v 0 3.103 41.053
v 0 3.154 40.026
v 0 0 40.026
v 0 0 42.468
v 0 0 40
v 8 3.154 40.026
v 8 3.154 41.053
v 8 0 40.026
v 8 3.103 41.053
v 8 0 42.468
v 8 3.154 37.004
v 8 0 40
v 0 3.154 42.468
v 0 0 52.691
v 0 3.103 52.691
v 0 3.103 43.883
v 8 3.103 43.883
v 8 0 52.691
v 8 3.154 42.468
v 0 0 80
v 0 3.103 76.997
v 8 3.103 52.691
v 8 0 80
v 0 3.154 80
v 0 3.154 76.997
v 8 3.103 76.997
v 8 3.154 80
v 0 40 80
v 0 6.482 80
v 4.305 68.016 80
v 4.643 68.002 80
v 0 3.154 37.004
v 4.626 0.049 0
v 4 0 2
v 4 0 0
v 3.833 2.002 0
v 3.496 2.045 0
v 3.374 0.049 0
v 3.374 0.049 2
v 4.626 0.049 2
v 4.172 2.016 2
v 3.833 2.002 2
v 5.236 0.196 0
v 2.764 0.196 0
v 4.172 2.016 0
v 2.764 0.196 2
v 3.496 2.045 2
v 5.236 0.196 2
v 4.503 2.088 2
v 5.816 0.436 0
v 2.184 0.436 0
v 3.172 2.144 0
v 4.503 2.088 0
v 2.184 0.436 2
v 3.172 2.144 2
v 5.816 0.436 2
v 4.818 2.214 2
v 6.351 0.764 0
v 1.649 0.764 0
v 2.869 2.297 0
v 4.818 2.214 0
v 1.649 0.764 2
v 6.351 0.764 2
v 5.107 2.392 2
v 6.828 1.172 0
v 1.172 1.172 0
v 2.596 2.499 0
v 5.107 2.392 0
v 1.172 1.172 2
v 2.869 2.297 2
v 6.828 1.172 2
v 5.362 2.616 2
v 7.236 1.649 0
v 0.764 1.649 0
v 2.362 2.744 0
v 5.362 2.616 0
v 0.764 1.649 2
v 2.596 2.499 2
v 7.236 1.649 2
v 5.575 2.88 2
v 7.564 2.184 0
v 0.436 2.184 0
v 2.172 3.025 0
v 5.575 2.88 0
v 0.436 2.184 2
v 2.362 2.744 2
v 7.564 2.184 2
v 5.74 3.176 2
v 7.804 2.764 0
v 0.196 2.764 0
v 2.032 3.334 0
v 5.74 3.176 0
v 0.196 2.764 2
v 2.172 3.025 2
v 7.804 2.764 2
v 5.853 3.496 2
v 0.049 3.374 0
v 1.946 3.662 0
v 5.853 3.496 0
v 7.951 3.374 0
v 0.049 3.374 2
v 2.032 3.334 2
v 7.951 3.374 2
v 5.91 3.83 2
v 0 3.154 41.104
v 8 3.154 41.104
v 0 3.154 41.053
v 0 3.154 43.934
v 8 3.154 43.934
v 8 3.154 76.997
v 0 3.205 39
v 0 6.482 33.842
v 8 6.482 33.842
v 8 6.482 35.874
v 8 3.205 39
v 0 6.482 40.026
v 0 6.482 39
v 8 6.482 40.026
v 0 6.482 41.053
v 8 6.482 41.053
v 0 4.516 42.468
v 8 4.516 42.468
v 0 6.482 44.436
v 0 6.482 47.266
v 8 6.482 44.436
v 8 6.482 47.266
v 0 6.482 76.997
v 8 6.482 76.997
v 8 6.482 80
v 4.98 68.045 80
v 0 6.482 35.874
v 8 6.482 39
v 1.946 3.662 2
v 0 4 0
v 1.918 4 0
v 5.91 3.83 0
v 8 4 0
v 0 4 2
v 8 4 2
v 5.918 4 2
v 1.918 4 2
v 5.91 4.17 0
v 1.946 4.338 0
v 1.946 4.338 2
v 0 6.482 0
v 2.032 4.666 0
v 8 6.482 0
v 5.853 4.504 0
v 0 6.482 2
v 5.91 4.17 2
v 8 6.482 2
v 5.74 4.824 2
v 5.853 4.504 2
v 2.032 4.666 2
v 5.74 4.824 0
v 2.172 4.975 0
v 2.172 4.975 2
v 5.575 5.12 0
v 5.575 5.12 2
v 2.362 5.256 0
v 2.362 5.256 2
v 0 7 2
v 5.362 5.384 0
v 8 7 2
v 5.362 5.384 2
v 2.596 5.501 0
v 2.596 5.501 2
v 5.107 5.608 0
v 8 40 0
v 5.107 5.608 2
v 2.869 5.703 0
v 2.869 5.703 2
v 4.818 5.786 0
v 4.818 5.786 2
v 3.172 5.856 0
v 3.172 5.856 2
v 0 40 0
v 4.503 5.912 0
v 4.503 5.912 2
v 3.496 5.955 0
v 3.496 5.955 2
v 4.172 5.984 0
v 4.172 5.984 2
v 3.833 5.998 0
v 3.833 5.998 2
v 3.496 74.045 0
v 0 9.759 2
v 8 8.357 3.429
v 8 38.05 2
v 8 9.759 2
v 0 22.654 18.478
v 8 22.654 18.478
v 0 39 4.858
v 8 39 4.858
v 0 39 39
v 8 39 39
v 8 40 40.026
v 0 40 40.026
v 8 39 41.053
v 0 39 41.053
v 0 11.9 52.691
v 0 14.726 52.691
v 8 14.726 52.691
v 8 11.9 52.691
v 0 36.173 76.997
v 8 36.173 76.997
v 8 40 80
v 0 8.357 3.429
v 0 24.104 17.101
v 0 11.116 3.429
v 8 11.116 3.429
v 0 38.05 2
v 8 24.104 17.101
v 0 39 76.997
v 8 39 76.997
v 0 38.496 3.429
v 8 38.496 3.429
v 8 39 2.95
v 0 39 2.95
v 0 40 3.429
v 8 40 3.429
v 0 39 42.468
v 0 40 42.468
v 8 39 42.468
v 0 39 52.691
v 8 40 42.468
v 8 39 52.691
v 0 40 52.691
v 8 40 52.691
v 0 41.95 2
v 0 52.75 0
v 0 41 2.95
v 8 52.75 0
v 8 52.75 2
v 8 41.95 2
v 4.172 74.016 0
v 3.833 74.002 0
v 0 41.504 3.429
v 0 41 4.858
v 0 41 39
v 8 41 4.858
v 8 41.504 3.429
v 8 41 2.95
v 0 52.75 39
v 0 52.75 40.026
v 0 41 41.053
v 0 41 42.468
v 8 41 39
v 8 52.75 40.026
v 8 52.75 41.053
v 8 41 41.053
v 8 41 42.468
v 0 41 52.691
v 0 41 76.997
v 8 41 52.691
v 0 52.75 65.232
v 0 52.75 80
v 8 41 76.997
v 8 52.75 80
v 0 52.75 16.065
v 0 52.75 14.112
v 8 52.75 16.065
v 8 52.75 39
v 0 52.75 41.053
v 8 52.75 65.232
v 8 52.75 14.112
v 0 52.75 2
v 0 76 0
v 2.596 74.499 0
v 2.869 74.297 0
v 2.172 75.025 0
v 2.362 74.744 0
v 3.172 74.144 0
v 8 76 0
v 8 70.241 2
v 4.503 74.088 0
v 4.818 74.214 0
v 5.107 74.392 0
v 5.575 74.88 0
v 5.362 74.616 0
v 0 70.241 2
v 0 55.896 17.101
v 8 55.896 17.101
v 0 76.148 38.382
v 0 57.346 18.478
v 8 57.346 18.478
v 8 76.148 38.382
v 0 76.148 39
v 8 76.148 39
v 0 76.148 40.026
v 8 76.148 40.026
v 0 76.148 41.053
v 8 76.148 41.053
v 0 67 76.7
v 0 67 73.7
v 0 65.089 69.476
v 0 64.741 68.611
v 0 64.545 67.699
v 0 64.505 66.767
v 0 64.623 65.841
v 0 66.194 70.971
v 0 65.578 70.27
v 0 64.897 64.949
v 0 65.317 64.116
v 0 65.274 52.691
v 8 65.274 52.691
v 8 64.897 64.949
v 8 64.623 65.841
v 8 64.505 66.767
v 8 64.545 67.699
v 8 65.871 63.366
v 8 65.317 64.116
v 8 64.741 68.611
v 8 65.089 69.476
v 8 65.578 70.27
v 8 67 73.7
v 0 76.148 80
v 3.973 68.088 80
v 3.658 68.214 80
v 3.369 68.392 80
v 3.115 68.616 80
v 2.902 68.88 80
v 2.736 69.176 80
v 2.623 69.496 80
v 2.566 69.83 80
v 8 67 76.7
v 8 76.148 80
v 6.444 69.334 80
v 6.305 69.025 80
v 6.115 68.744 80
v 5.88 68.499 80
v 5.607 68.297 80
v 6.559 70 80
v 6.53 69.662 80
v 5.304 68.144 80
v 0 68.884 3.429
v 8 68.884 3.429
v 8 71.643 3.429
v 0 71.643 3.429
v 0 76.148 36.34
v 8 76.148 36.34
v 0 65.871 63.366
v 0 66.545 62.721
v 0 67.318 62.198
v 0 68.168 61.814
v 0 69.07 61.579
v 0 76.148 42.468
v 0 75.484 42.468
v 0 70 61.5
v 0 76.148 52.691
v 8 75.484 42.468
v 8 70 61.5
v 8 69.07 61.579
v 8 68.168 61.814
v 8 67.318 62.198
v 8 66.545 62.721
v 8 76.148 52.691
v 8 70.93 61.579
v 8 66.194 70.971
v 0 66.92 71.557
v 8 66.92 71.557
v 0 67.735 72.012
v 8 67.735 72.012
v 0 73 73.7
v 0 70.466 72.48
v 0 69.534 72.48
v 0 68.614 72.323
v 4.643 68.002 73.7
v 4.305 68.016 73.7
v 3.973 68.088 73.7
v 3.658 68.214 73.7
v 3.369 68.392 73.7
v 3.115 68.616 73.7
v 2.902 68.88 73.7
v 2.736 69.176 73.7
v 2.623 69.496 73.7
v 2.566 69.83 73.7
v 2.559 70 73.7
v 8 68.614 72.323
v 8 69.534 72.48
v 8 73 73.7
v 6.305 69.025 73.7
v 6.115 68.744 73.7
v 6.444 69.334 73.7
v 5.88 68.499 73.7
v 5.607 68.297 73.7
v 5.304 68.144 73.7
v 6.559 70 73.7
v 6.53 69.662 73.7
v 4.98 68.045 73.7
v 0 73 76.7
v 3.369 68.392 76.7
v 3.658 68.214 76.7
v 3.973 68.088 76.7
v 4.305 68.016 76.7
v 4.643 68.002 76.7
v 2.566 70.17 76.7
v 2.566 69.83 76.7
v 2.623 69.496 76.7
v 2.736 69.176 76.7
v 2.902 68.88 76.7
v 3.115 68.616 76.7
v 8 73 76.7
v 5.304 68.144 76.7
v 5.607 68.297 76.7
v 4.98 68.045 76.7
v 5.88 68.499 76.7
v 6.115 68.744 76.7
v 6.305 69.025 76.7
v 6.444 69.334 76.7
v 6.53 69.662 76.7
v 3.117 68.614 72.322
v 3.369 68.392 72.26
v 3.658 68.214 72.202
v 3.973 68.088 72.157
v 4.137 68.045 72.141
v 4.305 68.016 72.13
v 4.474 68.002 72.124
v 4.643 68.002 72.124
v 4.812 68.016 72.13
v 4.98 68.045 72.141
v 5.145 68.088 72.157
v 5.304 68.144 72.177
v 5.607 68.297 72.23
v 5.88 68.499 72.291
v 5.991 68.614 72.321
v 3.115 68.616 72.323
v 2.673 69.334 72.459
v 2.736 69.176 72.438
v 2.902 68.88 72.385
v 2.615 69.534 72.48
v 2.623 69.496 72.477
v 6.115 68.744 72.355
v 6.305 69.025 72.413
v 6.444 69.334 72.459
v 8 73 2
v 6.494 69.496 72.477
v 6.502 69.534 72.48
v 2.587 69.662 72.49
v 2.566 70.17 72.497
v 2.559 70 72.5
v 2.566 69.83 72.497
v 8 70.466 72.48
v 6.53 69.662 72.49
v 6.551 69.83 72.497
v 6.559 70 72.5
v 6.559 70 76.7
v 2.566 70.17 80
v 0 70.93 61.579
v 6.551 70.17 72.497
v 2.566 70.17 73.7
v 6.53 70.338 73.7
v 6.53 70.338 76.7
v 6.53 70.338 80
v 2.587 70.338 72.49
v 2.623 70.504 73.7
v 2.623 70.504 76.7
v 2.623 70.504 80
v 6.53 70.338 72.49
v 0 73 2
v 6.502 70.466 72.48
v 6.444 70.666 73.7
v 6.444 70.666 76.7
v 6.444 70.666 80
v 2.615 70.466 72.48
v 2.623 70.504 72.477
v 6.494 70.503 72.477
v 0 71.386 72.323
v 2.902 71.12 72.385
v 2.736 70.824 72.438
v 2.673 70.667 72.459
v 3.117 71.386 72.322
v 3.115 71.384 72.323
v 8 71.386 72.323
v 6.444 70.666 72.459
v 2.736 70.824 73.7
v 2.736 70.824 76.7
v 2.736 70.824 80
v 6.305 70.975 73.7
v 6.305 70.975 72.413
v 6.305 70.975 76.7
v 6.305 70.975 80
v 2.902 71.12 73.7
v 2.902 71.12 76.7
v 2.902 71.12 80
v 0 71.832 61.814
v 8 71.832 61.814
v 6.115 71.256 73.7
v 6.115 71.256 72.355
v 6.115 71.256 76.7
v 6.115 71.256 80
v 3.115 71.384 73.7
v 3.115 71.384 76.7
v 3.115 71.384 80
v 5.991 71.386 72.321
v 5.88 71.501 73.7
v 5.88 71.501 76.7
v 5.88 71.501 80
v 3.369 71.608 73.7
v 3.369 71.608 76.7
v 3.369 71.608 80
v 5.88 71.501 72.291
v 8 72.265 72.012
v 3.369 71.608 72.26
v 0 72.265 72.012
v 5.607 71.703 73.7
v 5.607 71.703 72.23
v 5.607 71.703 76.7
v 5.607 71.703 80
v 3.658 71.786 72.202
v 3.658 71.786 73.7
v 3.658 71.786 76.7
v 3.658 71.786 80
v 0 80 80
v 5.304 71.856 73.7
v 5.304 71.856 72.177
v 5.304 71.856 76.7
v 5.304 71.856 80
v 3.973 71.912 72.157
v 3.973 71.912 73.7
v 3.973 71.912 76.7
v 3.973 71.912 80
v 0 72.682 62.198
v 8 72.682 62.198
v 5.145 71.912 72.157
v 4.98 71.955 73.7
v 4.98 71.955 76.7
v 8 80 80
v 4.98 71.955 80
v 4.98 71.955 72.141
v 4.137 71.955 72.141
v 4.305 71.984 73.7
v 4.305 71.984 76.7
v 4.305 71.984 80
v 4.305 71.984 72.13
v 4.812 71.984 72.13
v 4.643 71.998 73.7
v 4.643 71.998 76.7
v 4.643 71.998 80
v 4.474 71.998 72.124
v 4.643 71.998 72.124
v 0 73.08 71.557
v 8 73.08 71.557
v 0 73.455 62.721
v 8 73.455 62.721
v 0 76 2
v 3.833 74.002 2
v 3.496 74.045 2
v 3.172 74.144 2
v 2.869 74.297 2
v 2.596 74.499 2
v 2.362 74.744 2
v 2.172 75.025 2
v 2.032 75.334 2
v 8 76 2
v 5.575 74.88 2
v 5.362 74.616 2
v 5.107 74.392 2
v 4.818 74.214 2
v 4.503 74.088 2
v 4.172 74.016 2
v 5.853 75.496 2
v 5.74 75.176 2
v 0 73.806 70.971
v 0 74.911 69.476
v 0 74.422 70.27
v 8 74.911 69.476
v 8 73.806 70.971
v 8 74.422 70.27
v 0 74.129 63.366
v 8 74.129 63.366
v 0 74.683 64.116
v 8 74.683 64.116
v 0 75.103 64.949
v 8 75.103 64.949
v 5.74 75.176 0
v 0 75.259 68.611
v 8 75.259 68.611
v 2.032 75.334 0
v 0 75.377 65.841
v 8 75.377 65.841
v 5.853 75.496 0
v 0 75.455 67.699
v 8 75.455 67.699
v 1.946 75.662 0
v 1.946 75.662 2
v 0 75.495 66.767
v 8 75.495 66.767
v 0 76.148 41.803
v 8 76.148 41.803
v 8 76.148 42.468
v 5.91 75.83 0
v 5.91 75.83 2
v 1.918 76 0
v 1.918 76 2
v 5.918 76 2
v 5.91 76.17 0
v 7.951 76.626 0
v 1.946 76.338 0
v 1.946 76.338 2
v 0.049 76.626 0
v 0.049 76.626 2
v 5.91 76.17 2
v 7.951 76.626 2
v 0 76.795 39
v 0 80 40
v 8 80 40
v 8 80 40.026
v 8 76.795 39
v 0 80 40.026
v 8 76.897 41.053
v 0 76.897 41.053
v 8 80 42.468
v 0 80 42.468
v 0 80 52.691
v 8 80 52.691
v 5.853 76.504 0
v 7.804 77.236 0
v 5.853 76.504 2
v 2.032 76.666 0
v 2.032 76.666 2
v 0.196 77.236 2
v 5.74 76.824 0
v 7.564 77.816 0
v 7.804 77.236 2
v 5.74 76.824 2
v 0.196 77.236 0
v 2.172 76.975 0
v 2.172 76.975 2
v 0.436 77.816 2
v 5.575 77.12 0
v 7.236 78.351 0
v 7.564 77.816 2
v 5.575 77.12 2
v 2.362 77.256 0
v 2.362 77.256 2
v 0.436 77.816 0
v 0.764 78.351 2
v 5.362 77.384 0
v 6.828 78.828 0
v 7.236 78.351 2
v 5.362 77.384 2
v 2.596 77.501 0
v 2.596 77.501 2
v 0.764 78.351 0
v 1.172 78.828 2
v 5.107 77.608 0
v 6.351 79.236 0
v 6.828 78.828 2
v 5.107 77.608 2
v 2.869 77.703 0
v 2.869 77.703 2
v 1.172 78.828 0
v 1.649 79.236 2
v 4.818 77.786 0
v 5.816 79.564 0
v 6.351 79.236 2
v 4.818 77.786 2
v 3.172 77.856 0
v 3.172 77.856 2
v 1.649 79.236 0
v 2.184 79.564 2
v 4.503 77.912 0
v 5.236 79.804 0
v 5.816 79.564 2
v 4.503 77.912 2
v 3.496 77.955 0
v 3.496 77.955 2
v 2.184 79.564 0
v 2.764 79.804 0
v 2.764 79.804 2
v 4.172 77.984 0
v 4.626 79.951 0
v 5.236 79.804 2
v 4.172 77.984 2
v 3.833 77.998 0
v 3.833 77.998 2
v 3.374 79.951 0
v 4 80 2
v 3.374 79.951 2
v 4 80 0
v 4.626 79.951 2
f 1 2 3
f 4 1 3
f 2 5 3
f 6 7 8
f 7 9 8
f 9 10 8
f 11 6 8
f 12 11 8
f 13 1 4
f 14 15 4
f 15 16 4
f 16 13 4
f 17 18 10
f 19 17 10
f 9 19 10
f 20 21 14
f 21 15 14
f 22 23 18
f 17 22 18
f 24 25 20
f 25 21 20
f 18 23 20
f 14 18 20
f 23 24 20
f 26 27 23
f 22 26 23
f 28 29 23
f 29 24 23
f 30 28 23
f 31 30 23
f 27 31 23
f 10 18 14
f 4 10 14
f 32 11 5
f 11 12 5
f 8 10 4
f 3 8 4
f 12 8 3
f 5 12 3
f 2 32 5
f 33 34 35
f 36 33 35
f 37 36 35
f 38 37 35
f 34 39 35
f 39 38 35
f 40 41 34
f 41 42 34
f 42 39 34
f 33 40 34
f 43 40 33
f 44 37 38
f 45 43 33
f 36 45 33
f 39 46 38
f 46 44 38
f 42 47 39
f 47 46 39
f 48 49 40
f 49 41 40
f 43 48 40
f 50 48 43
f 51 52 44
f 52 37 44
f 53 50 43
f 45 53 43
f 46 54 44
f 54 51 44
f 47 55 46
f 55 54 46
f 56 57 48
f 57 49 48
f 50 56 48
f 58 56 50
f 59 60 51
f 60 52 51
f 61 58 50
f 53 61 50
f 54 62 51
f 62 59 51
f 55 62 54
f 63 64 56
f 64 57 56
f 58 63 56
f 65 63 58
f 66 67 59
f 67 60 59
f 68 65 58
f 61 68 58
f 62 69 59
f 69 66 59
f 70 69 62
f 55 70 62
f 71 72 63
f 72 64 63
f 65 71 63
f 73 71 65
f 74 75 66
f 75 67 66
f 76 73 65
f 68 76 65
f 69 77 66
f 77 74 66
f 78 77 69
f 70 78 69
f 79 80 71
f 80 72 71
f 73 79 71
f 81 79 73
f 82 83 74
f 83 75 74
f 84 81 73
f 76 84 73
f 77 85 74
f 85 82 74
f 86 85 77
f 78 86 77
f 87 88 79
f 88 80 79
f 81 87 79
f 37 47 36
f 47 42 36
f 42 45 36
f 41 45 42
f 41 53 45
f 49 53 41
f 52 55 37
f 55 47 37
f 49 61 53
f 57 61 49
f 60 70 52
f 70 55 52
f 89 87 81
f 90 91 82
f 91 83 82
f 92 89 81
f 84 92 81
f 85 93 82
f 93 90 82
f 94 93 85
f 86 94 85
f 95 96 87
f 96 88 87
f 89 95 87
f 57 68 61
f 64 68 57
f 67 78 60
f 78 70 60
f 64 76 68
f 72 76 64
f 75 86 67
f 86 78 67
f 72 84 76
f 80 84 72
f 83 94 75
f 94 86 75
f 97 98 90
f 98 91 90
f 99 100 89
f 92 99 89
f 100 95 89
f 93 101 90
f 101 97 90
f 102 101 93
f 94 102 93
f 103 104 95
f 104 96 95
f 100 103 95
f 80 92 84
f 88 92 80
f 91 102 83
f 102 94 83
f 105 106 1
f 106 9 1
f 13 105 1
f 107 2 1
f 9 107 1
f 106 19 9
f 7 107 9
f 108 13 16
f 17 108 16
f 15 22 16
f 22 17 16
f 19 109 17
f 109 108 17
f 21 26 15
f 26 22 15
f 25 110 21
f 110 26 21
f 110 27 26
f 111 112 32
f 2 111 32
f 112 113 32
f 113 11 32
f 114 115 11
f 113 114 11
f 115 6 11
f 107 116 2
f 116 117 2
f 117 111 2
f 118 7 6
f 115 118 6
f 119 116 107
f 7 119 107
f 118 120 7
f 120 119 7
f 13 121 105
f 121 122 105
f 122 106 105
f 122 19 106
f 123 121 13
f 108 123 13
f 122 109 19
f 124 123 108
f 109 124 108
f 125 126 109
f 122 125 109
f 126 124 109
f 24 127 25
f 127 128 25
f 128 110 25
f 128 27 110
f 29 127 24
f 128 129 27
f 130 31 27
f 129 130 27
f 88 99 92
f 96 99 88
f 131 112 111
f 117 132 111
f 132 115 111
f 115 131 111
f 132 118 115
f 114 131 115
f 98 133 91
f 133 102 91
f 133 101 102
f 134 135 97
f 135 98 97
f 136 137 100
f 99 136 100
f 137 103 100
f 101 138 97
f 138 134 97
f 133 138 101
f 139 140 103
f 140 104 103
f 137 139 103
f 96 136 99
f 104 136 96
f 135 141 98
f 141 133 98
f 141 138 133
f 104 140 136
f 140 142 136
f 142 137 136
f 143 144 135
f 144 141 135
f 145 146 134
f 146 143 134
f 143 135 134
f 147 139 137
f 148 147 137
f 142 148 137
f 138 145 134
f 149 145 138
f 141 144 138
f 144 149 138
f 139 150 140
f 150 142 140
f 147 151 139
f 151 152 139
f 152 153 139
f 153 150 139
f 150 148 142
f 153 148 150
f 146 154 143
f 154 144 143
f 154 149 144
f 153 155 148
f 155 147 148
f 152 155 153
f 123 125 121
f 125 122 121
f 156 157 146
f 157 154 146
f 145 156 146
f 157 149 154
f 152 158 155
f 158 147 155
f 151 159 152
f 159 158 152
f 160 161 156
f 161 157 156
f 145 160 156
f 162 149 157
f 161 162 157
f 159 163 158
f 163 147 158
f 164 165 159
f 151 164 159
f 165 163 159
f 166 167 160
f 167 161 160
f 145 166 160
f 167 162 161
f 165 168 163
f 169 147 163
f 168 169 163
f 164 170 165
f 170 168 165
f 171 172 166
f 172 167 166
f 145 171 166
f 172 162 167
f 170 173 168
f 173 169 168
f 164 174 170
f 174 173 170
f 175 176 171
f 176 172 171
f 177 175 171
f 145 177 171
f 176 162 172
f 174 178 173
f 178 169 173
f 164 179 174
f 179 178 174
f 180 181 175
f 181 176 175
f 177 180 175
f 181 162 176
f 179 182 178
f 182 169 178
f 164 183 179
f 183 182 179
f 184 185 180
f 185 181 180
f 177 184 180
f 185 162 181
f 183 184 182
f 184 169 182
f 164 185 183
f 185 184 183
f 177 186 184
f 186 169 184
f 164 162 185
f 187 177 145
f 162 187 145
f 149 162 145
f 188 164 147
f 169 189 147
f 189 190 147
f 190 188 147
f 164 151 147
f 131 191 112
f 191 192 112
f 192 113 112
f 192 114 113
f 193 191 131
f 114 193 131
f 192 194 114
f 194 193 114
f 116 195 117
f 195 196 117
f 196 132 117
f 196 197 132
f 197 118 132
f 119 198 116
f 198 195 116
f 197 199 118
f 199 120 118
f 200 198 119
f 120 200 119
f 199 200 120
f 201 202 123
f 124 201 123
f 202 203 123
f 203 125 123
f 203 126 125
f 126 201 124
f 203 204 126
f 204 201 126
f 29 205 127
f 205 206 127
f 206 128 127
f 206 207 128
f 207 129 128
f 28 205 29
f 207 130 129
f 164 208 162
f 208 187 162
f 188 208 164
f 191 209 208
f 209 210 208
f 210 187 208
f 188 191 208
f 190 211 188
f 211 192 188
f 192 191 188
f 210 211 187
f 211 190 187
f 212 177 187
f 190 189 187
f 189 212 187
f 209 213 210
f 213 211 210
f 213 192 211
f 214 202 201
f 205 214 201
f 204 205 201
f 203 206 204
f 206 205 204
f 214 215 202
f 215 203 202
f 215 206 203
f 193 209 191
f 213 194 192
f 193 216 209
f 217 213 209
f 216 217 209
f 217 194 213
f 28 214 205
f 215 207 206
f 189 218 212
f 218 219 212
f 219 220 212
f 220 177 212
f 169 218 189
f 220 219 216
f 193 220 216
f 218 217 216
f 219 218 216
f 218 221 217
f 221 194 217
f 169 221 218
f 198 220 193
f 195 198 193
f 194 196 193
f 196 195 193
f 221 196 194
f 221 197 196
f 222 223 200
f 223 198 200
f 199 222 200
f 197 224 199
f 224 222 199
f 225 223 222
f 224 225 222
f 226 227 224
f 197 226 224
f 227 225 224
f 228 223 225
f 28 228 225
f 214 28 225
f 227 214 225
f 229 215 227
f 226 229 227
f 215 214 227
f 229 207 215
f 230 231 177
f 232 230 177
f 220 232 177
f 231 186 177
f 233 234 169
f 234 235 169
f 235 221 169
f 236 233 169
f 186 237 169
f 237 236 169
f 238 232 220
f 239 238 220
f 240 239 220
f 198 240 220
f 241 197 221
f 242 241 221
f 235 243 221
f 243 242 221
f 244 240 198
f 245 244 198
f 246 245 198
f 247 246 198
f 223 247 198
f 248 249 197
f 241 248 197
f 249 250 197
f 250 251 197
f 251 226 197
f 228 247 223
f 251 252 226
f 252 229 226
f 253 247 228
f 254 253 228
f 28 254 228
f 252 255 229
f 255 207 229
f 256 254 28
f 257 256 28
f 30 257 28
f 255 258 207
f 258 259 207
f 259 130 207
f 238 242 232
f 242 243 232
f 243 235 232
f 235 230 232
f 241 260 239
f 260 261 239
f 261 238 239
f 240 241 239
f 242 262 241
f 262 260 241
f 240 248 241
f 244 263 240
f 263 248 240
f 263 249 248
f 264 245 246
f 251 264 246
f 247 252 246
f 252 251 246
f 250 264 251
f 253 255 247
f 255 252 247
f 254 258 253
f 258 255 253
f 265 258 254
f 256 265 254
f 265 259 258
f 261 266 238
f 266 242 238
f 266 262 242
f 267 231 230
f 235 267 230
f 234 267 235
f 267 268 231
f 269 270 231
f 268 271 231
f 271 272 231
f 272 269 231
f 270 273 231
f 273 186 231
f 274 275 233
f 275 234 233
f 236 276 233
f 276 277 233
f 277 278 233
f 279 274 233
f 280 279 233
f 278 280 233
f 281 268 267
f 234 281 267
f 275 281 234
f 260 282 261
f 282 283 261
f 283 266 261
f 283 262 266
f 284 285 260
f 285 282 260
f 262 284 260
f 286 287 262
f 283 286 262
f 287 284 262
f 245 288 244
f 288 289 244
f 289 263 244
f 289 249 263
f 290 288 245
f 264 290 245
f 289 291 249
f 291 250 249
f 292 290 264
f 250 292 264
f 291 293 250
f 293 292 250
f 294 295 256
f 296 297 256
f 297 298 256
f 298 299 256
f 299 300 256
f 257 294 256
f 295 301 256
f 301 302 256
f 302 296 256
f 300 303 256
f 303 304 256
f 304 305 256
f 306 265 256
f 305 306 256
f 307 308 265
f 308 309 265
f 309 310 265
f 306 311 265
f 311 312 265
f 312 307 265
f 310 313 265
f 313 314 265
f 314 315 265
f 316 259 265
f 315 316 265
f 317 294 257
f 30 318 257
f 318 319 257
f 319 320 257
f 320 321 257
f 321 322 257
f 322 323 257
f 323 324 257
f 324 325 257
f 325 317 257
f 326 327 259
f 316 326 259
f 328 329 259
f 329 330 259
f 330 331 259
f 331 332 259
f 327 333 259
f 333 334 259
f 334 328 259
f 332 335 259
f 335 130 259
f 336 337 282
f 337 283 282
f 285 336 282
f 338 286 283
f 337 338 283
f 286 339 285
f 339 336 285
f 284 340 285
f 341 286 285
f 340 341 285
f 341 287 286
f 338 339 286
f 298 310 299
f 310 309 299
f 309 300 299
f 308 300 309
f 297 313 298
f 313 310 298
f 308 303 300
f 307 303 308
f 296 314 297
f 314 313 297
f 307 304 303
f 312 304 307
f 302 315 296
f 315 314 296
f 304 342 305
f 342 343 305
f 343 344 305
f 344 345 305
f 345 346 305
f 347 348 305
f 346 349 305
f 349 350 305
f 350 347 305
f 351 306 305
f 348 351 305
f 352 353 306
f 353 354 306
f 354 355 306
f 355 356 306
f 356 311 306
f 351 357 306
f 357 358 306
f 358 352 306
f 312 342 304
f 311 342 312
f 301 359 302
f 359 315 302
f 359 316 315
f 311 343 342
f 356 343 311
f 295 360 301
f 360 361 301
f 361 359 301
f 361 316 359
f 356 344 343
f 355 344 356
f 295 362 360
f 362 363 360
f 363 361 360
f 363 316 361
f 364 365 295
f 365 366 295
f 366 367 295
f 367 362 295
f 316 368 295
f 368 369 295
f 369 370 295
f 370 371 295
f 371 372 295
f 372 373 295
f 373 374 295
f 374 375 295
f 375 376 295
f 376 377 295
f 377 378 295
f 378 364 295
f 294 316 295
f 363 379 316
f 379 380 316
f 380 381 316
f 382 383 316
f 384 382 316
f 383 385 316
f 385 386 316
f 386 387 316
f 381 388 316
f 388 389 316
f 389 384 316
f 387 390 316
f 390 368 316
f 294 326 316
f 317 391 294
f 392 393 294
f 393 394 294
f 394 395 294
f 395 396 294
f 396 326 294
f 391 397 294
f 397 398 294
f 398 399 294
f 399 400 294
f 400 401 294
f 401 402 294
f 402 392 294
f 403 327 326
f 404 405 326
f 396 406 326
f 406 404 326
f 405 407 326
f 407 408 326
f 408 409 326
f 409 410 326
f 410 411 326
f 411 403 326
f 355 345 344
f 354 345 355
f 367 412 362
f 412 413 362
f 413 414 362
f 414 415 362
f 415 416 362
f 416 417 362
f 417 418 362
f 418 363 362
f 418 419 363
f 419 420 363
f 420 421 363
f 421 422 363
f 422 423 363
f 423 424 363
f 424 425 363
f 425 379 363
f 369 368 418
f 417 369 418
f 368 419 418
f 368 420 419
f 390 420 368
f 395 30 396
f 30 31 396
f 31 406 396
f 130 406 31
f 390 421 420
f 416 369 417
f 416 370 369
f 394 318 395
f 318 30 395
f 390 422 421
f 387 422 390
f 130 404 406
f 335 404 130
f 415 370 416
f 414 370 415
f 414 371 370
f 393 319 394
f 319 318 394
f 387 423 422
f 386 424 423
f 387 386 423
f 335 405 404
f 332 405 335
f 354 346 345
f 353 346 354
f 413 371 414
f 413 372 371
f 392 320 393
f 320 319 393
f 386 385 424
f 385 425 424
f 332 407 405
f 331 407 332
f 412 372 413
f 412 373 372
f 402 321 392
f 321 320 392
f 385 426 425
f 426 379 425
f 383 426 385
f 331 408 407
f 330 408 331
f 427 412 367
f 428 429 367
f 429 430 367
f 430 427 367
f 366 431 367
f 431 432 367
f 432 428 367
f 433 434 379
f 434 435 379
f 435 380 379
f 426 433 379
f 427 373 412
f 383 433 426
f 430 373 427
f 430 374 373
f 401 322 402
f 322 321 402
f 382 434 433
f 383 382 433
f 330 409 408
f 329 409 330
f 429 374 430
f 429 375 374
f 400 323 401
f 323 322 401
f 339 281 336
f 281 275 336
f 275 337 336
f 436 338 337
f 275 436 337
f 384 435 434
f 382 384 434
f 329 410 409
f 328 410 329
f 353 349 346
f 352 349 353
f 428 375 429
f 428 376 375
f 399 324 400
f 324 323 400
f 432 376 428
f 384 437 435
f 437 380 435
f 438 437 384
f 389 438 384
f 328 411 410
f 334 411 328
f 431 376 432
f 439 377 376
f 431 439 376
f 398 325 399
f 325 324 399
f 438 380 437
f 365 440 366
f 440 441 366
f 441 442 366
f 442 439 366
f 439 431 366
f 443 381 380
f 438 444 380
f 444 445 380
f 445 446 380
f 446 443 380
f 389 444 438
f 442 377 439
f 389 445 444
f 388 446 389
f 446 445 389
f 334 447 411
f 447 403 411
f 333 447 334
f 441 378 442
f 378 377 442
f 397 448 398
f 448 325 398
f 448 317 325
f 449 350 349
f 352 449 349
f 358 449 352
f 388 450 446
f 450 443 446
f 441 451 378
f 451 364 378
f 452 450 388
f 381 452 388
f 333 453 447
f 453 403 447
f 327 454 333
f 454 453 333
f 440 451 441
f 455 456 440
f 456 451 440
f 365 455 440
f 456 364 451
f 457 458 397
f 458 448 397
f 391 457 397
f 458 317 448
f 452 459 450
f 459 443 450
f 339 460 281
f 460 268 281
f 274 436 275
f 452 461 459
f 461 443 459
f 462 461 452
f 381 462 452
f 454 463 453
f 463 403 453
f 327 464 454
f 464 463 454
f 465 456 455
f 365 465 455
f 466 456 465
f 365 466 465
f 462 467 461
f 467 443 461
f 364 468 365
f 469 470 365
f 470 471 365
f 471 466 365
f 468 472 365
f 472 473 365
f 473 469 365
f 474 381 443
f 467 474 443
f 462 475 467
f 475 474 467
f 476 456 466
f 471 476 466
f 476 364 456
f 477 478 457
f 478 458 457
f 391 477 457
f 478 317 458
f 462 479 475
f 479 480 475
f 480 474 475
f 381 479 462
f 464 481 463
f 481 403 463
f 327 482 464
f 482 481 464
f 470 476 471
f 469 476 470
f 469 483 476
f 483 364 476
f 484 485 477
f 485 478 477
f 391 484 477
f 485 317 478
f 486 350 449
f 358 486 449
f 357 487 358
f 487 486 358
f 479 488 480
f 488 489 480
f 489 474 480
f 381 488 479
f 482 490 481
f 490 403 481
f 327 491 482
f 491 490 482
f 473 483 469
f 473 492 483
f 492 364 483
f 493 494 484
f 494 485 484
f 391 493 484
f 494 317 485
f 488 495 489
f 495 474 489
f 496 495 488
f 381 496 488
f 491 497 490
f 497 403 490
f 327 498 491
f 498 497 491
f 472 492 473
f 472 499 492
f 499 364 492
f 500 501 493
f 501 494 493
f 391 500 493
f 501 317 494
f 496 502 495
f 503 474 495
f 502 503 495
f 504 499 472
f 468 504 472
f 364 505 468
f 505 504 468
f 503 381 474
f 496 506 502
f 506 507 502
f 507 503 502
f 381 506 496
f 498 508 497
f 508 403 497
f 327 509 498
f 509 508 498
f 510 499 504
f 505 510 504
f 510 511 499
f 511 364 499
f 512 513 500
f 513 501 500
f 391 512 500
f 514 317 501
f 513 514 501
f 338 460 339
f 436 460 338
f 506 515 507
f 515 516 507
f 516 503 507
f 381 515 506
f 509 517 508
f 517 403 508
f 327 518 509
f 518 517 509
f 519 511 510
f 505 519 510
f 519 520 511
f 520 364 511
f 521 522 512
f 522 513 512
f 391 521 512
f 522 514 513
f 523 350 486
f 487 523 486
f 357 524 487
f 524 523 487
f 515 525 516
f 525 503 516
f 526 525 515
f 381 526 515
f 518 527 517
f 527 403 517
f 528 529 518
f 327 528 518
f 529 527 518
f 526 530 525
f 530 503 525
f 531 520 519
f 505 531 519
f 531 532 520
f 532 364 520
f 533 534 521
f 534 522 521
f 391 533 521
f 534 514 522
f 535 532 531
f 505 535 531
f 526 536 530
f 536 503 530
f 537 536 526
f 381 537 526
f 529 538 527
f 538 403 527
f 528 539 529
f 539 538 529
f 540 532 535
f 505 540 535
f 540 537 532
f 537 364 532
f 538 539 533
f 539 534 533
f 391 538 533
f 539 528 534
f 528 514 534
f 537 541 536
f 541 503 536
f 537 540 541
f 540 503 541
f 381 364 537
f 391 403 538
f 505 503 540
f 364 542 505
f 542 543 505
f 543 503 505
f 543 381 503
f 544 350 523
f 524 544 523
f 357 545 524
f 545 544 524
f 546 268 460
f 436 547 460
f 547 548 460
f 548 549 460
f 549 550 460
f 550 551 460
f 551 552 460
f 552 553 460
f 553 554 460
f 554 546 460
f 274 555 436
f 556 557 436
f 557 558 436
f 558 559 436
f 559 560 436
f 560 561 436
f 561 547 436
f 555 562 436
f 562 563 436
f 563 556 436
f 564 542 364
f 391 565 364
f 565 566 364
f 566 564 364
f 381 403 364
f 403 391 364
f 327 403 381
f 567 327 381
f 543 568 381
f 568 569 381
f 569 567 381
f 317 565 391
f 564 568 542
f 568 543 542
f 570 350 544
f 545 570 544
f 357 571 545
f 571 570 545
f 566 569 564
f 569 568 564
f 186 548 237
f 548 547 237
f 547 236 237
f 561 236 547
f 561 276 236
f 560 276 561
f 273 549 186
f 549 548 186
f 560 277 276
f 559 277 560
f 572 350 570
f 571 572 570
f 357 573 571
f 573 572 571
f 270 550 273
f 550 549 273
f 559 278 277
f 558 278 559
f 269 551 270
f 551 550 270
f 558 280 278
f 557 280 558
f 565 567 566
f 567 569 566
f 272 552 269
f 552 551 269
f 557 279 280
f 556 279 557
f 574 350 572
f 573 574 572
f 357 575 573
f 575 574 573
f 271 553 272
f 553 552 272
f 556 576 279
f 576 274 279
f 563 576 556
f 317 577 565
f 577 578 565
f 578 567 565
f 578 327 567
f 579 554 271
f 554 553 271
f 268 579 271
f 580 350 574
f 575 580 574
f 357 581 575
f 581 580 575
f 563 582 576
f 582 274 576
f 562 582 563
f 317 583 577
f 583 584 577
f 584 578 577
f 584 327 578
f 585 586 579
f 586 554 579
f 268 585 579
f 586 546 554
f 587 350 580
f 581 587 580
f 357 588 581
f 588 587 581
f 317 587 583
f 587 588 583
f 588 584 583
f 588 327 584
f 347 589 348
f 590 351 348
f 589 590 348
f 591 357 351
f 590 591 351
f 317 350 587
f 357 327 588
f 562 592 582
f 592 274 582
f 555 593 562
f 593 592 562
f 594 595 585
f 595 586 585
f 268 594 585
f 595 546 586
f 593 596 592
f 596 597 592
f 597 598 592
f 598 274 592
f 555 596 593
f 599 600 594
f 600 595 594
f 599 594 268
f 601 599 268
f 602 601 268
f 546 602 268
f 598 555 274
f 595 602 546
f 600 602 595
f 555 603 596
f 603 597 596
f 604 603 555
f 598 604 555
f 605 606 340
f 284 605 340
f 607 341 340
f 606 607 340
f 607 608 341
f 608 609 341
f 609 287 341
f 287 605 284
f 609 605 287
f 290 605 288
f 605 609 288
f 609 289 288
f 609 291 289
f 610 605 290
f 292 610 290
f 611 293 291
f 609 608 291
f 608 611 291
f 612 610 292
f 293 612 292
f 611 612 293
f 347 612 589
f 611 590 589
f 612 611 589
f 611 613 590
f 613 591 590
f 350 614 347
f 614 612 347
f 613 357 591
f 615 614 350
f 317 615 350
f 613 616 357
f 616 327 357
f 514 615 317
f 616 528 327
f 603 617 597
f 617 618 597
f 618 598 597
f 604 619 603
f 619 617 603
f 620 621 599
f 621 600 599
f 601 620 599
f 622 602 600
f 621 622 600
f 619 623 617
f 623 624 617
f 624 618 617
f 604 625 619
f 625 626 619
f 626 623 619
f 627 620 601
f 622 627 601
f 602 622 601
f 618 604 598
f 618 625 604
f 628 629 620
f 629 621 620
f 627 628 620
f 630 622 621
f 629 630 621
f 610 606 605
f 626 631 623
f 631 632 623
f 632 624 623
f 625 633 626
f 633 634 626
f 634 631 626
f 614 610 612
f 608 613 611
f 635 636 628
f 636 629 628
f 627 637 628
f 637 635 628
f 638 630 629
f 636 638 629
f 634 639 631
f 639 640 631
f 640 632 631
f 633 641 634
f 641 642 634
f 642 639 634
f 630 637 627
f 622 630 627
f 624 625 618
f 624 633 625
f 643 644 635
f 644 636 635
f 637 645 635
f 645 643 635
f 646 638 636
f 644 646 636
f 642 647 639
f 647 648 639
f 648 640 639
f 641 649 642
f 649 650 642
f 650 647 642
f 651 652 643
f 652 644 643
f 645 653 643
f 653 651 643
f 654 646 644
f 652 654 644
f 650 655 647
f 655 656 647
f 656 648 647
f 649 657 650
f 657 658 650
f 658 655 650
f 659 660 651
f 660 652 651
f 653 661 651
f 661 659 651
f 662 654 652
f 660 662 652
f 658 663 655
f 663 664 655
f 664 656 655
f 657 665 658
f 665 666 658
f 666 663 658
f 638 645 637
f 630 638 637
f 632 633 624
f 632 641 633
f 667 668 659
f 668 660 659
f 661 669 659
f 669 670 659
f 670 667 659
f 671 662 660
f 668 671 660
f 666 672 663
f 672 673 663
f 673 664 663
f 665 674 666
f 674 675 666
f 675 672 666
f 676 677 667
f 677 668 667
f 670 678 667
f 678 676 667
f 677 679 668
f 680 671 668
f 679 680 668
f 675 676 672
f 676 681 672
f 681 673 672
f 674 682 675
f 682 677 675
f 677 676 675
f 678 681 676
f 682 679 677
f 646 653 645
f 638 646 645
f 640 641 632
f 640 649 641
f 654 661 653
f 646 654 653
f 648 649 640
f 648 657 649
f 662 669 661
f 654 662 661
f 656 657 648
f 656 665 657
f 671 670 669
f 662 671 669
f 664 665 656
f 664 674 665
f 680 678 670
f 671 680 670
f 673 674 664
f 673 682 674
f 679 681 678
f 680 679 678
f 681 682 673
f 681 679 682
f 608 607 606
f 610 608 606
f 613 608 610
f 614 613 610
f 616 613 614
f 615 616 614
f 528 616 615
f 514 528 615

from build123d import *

# Parameters (mm, degrees)
SKETCH1_W                  = 80
SKETCH1_H                  = 80
BOSS_EXTRUDE1_DEPTH        = 8
CUT_EXTRUDE3_DEPTH         = 8
SKETCH5_R                  = 5.5
CUT_EXTRUDE4_DEPTH         = 8
F_4_0MM_DOWEL_HOLE1_D      = 4
F_4_0MM_DOWEL_HOLE1_DEPTH  = 2
F_4_0MM_DOWEL_HOLE2_REACH  = 115.42
F_4_0MM_DOWEL_HOLE2_BORE_R = 2
SKETCH11_W                 = 3
SKETCH11_H                 = 6
CUT_EXTRUDE5_DEPTH         = 8
CUT_EXTRUDE7_DEPTH         = 8
FILLET1_R                  = 4


with BuildPart() as part:
    # Sketch1 → Boss-Extrude1 (new body)
    with BuildSketch(Plane(origin=(0, 0, 0), x_dir=(0, 0, -1), z_dir=(1, 0, 0))):
        with Locations((-40, 40)):
            Rectangle(SKETCH1_W, SKETCH1_H)
    extrude(amount=BOSS_EXTRUDE1_DEPTH)

    # Sketch4 → Cut-Extrude3 (cut)
    with BuildSketch(Plane.ZY):
        Polygon((4.857641634, 41), (39, 76.795358795), (39, 41), align=None)
        Polygon((41.052631579, 76.897437673), (41.052631579, 41), (76.997364954, 41), align=None)
        Polygon((41.052631579, 39), (76.997364954, 39), (41.052631579, 3.102562327), align=None)
        Polygon((39, 39), (39, 3.204641205), (4.857641634, 39), align=None)
        Polygon((2, 7), (2, 0), (40, 0), (18.478318003, 22.654402102), align=None)
        Polygon((2, 9.758622845), (2, 38.05), (2.95, 39), (17.100819079, 24.10440097), align=None)
        Polygon((2, 41.95), (2, 70.241377155), (17.100819079, 55.89559903), (2.95, 41), align=None)
        Polygon((2, 80), (2, 73), (18.478318003, 57.345597898), (40, 80), align=None)
    extrude(amount=-CUT_EXTRUDE3_DEPTH, mode=Mode.SUBTRACT)

    # Sketch5 → Cut-Extrude4 (cut)
    with BuildSketch(Plane(origin=(8, 0, 0), x_dir=(0, 0, -1), z_dir=(1, 0, 0))):
        with Locations((-67, 70)):
            Circle(SKETCH5_R)
    extrude(amount=-CUT_EXTRUDE4_DEPTH, mode=Mode.SUBTRACT)

    # Ø4.0mm Dowel Hole1
    with Locations(Plane(origin=(0, 0, 0), x_dir=(-1, 0, 0), z_dir=(0, 0, -1))):
        with Locations((-3.917697329, 76), (-3.917697329, 4)):
            Hole(F_4_0MM_DOWEL_HOLE1_D / 2, depth=F_4_0MM_DOWEL_HOLE1_DEPTH)

    # Ø4.0mm Dowel Hole2 bore → Ø4.0mm Dowel Hole2 (cut, up to next)
    with BuildSketch(Plane.XY.offset(80), mode=Mode.PRIVATE) as f_4_0mm_dowel_hole2_sk1:
        with Locations((4.558585212, 70)):
            Circle(F_4_0MM_DOWEL_HOLE2_BORE_R)
    f_4_0mm_dowel_hole2_tool1 = extrude(f_4_0mm_dowel_hole2_sk1.sketch, amount=-F_4_0MM_DOWEL_HOLE2_REACH, mode=Mode.PRIVATE) & part.part
    add(f_4_0mm_dowel_hole2_tool1.solids().sort_by_distance((4.558585, 70, 80))[0], mode=Mode.SUBTRACT)

    # Sketch11 → Cut-Extrude5 (cut)
    with BuildSketch(Plane.ZY):
        with Locations((75.2, 70)):
            Rectangle(SKETCH11_W, SKETCH11_H)
    extrude(amount=-CUT_EXTRUDE5_DEPTH, mode=Mode.SUBTRACT)

    # Sketch15 → Cut-Extrude7 (cut)
    with BuildSketch(Plane.ZY):
        Polygon((43.882922576, 3.102562327), (76.997364954, 3.102562327), (76.997364954, 36.17343307), align=None)
    extrude(amount=-CUT_EXTRUDE7_DEPTH, mode=Mode.SUBTRACT)

    # Fillet1
    fillet1_edges = [part.edges().sort_by_distance(p)[0] for p in [
        (8, 0, 1),
        (0, 0, 1),
        (8, 80, 1),
        (0, 80, 1),
    ]]
    fillet(fillet1_edges, radius=FILLET1_R - 0.0001)  # a hair under: the kernel refuses the full size


solid = part.part
